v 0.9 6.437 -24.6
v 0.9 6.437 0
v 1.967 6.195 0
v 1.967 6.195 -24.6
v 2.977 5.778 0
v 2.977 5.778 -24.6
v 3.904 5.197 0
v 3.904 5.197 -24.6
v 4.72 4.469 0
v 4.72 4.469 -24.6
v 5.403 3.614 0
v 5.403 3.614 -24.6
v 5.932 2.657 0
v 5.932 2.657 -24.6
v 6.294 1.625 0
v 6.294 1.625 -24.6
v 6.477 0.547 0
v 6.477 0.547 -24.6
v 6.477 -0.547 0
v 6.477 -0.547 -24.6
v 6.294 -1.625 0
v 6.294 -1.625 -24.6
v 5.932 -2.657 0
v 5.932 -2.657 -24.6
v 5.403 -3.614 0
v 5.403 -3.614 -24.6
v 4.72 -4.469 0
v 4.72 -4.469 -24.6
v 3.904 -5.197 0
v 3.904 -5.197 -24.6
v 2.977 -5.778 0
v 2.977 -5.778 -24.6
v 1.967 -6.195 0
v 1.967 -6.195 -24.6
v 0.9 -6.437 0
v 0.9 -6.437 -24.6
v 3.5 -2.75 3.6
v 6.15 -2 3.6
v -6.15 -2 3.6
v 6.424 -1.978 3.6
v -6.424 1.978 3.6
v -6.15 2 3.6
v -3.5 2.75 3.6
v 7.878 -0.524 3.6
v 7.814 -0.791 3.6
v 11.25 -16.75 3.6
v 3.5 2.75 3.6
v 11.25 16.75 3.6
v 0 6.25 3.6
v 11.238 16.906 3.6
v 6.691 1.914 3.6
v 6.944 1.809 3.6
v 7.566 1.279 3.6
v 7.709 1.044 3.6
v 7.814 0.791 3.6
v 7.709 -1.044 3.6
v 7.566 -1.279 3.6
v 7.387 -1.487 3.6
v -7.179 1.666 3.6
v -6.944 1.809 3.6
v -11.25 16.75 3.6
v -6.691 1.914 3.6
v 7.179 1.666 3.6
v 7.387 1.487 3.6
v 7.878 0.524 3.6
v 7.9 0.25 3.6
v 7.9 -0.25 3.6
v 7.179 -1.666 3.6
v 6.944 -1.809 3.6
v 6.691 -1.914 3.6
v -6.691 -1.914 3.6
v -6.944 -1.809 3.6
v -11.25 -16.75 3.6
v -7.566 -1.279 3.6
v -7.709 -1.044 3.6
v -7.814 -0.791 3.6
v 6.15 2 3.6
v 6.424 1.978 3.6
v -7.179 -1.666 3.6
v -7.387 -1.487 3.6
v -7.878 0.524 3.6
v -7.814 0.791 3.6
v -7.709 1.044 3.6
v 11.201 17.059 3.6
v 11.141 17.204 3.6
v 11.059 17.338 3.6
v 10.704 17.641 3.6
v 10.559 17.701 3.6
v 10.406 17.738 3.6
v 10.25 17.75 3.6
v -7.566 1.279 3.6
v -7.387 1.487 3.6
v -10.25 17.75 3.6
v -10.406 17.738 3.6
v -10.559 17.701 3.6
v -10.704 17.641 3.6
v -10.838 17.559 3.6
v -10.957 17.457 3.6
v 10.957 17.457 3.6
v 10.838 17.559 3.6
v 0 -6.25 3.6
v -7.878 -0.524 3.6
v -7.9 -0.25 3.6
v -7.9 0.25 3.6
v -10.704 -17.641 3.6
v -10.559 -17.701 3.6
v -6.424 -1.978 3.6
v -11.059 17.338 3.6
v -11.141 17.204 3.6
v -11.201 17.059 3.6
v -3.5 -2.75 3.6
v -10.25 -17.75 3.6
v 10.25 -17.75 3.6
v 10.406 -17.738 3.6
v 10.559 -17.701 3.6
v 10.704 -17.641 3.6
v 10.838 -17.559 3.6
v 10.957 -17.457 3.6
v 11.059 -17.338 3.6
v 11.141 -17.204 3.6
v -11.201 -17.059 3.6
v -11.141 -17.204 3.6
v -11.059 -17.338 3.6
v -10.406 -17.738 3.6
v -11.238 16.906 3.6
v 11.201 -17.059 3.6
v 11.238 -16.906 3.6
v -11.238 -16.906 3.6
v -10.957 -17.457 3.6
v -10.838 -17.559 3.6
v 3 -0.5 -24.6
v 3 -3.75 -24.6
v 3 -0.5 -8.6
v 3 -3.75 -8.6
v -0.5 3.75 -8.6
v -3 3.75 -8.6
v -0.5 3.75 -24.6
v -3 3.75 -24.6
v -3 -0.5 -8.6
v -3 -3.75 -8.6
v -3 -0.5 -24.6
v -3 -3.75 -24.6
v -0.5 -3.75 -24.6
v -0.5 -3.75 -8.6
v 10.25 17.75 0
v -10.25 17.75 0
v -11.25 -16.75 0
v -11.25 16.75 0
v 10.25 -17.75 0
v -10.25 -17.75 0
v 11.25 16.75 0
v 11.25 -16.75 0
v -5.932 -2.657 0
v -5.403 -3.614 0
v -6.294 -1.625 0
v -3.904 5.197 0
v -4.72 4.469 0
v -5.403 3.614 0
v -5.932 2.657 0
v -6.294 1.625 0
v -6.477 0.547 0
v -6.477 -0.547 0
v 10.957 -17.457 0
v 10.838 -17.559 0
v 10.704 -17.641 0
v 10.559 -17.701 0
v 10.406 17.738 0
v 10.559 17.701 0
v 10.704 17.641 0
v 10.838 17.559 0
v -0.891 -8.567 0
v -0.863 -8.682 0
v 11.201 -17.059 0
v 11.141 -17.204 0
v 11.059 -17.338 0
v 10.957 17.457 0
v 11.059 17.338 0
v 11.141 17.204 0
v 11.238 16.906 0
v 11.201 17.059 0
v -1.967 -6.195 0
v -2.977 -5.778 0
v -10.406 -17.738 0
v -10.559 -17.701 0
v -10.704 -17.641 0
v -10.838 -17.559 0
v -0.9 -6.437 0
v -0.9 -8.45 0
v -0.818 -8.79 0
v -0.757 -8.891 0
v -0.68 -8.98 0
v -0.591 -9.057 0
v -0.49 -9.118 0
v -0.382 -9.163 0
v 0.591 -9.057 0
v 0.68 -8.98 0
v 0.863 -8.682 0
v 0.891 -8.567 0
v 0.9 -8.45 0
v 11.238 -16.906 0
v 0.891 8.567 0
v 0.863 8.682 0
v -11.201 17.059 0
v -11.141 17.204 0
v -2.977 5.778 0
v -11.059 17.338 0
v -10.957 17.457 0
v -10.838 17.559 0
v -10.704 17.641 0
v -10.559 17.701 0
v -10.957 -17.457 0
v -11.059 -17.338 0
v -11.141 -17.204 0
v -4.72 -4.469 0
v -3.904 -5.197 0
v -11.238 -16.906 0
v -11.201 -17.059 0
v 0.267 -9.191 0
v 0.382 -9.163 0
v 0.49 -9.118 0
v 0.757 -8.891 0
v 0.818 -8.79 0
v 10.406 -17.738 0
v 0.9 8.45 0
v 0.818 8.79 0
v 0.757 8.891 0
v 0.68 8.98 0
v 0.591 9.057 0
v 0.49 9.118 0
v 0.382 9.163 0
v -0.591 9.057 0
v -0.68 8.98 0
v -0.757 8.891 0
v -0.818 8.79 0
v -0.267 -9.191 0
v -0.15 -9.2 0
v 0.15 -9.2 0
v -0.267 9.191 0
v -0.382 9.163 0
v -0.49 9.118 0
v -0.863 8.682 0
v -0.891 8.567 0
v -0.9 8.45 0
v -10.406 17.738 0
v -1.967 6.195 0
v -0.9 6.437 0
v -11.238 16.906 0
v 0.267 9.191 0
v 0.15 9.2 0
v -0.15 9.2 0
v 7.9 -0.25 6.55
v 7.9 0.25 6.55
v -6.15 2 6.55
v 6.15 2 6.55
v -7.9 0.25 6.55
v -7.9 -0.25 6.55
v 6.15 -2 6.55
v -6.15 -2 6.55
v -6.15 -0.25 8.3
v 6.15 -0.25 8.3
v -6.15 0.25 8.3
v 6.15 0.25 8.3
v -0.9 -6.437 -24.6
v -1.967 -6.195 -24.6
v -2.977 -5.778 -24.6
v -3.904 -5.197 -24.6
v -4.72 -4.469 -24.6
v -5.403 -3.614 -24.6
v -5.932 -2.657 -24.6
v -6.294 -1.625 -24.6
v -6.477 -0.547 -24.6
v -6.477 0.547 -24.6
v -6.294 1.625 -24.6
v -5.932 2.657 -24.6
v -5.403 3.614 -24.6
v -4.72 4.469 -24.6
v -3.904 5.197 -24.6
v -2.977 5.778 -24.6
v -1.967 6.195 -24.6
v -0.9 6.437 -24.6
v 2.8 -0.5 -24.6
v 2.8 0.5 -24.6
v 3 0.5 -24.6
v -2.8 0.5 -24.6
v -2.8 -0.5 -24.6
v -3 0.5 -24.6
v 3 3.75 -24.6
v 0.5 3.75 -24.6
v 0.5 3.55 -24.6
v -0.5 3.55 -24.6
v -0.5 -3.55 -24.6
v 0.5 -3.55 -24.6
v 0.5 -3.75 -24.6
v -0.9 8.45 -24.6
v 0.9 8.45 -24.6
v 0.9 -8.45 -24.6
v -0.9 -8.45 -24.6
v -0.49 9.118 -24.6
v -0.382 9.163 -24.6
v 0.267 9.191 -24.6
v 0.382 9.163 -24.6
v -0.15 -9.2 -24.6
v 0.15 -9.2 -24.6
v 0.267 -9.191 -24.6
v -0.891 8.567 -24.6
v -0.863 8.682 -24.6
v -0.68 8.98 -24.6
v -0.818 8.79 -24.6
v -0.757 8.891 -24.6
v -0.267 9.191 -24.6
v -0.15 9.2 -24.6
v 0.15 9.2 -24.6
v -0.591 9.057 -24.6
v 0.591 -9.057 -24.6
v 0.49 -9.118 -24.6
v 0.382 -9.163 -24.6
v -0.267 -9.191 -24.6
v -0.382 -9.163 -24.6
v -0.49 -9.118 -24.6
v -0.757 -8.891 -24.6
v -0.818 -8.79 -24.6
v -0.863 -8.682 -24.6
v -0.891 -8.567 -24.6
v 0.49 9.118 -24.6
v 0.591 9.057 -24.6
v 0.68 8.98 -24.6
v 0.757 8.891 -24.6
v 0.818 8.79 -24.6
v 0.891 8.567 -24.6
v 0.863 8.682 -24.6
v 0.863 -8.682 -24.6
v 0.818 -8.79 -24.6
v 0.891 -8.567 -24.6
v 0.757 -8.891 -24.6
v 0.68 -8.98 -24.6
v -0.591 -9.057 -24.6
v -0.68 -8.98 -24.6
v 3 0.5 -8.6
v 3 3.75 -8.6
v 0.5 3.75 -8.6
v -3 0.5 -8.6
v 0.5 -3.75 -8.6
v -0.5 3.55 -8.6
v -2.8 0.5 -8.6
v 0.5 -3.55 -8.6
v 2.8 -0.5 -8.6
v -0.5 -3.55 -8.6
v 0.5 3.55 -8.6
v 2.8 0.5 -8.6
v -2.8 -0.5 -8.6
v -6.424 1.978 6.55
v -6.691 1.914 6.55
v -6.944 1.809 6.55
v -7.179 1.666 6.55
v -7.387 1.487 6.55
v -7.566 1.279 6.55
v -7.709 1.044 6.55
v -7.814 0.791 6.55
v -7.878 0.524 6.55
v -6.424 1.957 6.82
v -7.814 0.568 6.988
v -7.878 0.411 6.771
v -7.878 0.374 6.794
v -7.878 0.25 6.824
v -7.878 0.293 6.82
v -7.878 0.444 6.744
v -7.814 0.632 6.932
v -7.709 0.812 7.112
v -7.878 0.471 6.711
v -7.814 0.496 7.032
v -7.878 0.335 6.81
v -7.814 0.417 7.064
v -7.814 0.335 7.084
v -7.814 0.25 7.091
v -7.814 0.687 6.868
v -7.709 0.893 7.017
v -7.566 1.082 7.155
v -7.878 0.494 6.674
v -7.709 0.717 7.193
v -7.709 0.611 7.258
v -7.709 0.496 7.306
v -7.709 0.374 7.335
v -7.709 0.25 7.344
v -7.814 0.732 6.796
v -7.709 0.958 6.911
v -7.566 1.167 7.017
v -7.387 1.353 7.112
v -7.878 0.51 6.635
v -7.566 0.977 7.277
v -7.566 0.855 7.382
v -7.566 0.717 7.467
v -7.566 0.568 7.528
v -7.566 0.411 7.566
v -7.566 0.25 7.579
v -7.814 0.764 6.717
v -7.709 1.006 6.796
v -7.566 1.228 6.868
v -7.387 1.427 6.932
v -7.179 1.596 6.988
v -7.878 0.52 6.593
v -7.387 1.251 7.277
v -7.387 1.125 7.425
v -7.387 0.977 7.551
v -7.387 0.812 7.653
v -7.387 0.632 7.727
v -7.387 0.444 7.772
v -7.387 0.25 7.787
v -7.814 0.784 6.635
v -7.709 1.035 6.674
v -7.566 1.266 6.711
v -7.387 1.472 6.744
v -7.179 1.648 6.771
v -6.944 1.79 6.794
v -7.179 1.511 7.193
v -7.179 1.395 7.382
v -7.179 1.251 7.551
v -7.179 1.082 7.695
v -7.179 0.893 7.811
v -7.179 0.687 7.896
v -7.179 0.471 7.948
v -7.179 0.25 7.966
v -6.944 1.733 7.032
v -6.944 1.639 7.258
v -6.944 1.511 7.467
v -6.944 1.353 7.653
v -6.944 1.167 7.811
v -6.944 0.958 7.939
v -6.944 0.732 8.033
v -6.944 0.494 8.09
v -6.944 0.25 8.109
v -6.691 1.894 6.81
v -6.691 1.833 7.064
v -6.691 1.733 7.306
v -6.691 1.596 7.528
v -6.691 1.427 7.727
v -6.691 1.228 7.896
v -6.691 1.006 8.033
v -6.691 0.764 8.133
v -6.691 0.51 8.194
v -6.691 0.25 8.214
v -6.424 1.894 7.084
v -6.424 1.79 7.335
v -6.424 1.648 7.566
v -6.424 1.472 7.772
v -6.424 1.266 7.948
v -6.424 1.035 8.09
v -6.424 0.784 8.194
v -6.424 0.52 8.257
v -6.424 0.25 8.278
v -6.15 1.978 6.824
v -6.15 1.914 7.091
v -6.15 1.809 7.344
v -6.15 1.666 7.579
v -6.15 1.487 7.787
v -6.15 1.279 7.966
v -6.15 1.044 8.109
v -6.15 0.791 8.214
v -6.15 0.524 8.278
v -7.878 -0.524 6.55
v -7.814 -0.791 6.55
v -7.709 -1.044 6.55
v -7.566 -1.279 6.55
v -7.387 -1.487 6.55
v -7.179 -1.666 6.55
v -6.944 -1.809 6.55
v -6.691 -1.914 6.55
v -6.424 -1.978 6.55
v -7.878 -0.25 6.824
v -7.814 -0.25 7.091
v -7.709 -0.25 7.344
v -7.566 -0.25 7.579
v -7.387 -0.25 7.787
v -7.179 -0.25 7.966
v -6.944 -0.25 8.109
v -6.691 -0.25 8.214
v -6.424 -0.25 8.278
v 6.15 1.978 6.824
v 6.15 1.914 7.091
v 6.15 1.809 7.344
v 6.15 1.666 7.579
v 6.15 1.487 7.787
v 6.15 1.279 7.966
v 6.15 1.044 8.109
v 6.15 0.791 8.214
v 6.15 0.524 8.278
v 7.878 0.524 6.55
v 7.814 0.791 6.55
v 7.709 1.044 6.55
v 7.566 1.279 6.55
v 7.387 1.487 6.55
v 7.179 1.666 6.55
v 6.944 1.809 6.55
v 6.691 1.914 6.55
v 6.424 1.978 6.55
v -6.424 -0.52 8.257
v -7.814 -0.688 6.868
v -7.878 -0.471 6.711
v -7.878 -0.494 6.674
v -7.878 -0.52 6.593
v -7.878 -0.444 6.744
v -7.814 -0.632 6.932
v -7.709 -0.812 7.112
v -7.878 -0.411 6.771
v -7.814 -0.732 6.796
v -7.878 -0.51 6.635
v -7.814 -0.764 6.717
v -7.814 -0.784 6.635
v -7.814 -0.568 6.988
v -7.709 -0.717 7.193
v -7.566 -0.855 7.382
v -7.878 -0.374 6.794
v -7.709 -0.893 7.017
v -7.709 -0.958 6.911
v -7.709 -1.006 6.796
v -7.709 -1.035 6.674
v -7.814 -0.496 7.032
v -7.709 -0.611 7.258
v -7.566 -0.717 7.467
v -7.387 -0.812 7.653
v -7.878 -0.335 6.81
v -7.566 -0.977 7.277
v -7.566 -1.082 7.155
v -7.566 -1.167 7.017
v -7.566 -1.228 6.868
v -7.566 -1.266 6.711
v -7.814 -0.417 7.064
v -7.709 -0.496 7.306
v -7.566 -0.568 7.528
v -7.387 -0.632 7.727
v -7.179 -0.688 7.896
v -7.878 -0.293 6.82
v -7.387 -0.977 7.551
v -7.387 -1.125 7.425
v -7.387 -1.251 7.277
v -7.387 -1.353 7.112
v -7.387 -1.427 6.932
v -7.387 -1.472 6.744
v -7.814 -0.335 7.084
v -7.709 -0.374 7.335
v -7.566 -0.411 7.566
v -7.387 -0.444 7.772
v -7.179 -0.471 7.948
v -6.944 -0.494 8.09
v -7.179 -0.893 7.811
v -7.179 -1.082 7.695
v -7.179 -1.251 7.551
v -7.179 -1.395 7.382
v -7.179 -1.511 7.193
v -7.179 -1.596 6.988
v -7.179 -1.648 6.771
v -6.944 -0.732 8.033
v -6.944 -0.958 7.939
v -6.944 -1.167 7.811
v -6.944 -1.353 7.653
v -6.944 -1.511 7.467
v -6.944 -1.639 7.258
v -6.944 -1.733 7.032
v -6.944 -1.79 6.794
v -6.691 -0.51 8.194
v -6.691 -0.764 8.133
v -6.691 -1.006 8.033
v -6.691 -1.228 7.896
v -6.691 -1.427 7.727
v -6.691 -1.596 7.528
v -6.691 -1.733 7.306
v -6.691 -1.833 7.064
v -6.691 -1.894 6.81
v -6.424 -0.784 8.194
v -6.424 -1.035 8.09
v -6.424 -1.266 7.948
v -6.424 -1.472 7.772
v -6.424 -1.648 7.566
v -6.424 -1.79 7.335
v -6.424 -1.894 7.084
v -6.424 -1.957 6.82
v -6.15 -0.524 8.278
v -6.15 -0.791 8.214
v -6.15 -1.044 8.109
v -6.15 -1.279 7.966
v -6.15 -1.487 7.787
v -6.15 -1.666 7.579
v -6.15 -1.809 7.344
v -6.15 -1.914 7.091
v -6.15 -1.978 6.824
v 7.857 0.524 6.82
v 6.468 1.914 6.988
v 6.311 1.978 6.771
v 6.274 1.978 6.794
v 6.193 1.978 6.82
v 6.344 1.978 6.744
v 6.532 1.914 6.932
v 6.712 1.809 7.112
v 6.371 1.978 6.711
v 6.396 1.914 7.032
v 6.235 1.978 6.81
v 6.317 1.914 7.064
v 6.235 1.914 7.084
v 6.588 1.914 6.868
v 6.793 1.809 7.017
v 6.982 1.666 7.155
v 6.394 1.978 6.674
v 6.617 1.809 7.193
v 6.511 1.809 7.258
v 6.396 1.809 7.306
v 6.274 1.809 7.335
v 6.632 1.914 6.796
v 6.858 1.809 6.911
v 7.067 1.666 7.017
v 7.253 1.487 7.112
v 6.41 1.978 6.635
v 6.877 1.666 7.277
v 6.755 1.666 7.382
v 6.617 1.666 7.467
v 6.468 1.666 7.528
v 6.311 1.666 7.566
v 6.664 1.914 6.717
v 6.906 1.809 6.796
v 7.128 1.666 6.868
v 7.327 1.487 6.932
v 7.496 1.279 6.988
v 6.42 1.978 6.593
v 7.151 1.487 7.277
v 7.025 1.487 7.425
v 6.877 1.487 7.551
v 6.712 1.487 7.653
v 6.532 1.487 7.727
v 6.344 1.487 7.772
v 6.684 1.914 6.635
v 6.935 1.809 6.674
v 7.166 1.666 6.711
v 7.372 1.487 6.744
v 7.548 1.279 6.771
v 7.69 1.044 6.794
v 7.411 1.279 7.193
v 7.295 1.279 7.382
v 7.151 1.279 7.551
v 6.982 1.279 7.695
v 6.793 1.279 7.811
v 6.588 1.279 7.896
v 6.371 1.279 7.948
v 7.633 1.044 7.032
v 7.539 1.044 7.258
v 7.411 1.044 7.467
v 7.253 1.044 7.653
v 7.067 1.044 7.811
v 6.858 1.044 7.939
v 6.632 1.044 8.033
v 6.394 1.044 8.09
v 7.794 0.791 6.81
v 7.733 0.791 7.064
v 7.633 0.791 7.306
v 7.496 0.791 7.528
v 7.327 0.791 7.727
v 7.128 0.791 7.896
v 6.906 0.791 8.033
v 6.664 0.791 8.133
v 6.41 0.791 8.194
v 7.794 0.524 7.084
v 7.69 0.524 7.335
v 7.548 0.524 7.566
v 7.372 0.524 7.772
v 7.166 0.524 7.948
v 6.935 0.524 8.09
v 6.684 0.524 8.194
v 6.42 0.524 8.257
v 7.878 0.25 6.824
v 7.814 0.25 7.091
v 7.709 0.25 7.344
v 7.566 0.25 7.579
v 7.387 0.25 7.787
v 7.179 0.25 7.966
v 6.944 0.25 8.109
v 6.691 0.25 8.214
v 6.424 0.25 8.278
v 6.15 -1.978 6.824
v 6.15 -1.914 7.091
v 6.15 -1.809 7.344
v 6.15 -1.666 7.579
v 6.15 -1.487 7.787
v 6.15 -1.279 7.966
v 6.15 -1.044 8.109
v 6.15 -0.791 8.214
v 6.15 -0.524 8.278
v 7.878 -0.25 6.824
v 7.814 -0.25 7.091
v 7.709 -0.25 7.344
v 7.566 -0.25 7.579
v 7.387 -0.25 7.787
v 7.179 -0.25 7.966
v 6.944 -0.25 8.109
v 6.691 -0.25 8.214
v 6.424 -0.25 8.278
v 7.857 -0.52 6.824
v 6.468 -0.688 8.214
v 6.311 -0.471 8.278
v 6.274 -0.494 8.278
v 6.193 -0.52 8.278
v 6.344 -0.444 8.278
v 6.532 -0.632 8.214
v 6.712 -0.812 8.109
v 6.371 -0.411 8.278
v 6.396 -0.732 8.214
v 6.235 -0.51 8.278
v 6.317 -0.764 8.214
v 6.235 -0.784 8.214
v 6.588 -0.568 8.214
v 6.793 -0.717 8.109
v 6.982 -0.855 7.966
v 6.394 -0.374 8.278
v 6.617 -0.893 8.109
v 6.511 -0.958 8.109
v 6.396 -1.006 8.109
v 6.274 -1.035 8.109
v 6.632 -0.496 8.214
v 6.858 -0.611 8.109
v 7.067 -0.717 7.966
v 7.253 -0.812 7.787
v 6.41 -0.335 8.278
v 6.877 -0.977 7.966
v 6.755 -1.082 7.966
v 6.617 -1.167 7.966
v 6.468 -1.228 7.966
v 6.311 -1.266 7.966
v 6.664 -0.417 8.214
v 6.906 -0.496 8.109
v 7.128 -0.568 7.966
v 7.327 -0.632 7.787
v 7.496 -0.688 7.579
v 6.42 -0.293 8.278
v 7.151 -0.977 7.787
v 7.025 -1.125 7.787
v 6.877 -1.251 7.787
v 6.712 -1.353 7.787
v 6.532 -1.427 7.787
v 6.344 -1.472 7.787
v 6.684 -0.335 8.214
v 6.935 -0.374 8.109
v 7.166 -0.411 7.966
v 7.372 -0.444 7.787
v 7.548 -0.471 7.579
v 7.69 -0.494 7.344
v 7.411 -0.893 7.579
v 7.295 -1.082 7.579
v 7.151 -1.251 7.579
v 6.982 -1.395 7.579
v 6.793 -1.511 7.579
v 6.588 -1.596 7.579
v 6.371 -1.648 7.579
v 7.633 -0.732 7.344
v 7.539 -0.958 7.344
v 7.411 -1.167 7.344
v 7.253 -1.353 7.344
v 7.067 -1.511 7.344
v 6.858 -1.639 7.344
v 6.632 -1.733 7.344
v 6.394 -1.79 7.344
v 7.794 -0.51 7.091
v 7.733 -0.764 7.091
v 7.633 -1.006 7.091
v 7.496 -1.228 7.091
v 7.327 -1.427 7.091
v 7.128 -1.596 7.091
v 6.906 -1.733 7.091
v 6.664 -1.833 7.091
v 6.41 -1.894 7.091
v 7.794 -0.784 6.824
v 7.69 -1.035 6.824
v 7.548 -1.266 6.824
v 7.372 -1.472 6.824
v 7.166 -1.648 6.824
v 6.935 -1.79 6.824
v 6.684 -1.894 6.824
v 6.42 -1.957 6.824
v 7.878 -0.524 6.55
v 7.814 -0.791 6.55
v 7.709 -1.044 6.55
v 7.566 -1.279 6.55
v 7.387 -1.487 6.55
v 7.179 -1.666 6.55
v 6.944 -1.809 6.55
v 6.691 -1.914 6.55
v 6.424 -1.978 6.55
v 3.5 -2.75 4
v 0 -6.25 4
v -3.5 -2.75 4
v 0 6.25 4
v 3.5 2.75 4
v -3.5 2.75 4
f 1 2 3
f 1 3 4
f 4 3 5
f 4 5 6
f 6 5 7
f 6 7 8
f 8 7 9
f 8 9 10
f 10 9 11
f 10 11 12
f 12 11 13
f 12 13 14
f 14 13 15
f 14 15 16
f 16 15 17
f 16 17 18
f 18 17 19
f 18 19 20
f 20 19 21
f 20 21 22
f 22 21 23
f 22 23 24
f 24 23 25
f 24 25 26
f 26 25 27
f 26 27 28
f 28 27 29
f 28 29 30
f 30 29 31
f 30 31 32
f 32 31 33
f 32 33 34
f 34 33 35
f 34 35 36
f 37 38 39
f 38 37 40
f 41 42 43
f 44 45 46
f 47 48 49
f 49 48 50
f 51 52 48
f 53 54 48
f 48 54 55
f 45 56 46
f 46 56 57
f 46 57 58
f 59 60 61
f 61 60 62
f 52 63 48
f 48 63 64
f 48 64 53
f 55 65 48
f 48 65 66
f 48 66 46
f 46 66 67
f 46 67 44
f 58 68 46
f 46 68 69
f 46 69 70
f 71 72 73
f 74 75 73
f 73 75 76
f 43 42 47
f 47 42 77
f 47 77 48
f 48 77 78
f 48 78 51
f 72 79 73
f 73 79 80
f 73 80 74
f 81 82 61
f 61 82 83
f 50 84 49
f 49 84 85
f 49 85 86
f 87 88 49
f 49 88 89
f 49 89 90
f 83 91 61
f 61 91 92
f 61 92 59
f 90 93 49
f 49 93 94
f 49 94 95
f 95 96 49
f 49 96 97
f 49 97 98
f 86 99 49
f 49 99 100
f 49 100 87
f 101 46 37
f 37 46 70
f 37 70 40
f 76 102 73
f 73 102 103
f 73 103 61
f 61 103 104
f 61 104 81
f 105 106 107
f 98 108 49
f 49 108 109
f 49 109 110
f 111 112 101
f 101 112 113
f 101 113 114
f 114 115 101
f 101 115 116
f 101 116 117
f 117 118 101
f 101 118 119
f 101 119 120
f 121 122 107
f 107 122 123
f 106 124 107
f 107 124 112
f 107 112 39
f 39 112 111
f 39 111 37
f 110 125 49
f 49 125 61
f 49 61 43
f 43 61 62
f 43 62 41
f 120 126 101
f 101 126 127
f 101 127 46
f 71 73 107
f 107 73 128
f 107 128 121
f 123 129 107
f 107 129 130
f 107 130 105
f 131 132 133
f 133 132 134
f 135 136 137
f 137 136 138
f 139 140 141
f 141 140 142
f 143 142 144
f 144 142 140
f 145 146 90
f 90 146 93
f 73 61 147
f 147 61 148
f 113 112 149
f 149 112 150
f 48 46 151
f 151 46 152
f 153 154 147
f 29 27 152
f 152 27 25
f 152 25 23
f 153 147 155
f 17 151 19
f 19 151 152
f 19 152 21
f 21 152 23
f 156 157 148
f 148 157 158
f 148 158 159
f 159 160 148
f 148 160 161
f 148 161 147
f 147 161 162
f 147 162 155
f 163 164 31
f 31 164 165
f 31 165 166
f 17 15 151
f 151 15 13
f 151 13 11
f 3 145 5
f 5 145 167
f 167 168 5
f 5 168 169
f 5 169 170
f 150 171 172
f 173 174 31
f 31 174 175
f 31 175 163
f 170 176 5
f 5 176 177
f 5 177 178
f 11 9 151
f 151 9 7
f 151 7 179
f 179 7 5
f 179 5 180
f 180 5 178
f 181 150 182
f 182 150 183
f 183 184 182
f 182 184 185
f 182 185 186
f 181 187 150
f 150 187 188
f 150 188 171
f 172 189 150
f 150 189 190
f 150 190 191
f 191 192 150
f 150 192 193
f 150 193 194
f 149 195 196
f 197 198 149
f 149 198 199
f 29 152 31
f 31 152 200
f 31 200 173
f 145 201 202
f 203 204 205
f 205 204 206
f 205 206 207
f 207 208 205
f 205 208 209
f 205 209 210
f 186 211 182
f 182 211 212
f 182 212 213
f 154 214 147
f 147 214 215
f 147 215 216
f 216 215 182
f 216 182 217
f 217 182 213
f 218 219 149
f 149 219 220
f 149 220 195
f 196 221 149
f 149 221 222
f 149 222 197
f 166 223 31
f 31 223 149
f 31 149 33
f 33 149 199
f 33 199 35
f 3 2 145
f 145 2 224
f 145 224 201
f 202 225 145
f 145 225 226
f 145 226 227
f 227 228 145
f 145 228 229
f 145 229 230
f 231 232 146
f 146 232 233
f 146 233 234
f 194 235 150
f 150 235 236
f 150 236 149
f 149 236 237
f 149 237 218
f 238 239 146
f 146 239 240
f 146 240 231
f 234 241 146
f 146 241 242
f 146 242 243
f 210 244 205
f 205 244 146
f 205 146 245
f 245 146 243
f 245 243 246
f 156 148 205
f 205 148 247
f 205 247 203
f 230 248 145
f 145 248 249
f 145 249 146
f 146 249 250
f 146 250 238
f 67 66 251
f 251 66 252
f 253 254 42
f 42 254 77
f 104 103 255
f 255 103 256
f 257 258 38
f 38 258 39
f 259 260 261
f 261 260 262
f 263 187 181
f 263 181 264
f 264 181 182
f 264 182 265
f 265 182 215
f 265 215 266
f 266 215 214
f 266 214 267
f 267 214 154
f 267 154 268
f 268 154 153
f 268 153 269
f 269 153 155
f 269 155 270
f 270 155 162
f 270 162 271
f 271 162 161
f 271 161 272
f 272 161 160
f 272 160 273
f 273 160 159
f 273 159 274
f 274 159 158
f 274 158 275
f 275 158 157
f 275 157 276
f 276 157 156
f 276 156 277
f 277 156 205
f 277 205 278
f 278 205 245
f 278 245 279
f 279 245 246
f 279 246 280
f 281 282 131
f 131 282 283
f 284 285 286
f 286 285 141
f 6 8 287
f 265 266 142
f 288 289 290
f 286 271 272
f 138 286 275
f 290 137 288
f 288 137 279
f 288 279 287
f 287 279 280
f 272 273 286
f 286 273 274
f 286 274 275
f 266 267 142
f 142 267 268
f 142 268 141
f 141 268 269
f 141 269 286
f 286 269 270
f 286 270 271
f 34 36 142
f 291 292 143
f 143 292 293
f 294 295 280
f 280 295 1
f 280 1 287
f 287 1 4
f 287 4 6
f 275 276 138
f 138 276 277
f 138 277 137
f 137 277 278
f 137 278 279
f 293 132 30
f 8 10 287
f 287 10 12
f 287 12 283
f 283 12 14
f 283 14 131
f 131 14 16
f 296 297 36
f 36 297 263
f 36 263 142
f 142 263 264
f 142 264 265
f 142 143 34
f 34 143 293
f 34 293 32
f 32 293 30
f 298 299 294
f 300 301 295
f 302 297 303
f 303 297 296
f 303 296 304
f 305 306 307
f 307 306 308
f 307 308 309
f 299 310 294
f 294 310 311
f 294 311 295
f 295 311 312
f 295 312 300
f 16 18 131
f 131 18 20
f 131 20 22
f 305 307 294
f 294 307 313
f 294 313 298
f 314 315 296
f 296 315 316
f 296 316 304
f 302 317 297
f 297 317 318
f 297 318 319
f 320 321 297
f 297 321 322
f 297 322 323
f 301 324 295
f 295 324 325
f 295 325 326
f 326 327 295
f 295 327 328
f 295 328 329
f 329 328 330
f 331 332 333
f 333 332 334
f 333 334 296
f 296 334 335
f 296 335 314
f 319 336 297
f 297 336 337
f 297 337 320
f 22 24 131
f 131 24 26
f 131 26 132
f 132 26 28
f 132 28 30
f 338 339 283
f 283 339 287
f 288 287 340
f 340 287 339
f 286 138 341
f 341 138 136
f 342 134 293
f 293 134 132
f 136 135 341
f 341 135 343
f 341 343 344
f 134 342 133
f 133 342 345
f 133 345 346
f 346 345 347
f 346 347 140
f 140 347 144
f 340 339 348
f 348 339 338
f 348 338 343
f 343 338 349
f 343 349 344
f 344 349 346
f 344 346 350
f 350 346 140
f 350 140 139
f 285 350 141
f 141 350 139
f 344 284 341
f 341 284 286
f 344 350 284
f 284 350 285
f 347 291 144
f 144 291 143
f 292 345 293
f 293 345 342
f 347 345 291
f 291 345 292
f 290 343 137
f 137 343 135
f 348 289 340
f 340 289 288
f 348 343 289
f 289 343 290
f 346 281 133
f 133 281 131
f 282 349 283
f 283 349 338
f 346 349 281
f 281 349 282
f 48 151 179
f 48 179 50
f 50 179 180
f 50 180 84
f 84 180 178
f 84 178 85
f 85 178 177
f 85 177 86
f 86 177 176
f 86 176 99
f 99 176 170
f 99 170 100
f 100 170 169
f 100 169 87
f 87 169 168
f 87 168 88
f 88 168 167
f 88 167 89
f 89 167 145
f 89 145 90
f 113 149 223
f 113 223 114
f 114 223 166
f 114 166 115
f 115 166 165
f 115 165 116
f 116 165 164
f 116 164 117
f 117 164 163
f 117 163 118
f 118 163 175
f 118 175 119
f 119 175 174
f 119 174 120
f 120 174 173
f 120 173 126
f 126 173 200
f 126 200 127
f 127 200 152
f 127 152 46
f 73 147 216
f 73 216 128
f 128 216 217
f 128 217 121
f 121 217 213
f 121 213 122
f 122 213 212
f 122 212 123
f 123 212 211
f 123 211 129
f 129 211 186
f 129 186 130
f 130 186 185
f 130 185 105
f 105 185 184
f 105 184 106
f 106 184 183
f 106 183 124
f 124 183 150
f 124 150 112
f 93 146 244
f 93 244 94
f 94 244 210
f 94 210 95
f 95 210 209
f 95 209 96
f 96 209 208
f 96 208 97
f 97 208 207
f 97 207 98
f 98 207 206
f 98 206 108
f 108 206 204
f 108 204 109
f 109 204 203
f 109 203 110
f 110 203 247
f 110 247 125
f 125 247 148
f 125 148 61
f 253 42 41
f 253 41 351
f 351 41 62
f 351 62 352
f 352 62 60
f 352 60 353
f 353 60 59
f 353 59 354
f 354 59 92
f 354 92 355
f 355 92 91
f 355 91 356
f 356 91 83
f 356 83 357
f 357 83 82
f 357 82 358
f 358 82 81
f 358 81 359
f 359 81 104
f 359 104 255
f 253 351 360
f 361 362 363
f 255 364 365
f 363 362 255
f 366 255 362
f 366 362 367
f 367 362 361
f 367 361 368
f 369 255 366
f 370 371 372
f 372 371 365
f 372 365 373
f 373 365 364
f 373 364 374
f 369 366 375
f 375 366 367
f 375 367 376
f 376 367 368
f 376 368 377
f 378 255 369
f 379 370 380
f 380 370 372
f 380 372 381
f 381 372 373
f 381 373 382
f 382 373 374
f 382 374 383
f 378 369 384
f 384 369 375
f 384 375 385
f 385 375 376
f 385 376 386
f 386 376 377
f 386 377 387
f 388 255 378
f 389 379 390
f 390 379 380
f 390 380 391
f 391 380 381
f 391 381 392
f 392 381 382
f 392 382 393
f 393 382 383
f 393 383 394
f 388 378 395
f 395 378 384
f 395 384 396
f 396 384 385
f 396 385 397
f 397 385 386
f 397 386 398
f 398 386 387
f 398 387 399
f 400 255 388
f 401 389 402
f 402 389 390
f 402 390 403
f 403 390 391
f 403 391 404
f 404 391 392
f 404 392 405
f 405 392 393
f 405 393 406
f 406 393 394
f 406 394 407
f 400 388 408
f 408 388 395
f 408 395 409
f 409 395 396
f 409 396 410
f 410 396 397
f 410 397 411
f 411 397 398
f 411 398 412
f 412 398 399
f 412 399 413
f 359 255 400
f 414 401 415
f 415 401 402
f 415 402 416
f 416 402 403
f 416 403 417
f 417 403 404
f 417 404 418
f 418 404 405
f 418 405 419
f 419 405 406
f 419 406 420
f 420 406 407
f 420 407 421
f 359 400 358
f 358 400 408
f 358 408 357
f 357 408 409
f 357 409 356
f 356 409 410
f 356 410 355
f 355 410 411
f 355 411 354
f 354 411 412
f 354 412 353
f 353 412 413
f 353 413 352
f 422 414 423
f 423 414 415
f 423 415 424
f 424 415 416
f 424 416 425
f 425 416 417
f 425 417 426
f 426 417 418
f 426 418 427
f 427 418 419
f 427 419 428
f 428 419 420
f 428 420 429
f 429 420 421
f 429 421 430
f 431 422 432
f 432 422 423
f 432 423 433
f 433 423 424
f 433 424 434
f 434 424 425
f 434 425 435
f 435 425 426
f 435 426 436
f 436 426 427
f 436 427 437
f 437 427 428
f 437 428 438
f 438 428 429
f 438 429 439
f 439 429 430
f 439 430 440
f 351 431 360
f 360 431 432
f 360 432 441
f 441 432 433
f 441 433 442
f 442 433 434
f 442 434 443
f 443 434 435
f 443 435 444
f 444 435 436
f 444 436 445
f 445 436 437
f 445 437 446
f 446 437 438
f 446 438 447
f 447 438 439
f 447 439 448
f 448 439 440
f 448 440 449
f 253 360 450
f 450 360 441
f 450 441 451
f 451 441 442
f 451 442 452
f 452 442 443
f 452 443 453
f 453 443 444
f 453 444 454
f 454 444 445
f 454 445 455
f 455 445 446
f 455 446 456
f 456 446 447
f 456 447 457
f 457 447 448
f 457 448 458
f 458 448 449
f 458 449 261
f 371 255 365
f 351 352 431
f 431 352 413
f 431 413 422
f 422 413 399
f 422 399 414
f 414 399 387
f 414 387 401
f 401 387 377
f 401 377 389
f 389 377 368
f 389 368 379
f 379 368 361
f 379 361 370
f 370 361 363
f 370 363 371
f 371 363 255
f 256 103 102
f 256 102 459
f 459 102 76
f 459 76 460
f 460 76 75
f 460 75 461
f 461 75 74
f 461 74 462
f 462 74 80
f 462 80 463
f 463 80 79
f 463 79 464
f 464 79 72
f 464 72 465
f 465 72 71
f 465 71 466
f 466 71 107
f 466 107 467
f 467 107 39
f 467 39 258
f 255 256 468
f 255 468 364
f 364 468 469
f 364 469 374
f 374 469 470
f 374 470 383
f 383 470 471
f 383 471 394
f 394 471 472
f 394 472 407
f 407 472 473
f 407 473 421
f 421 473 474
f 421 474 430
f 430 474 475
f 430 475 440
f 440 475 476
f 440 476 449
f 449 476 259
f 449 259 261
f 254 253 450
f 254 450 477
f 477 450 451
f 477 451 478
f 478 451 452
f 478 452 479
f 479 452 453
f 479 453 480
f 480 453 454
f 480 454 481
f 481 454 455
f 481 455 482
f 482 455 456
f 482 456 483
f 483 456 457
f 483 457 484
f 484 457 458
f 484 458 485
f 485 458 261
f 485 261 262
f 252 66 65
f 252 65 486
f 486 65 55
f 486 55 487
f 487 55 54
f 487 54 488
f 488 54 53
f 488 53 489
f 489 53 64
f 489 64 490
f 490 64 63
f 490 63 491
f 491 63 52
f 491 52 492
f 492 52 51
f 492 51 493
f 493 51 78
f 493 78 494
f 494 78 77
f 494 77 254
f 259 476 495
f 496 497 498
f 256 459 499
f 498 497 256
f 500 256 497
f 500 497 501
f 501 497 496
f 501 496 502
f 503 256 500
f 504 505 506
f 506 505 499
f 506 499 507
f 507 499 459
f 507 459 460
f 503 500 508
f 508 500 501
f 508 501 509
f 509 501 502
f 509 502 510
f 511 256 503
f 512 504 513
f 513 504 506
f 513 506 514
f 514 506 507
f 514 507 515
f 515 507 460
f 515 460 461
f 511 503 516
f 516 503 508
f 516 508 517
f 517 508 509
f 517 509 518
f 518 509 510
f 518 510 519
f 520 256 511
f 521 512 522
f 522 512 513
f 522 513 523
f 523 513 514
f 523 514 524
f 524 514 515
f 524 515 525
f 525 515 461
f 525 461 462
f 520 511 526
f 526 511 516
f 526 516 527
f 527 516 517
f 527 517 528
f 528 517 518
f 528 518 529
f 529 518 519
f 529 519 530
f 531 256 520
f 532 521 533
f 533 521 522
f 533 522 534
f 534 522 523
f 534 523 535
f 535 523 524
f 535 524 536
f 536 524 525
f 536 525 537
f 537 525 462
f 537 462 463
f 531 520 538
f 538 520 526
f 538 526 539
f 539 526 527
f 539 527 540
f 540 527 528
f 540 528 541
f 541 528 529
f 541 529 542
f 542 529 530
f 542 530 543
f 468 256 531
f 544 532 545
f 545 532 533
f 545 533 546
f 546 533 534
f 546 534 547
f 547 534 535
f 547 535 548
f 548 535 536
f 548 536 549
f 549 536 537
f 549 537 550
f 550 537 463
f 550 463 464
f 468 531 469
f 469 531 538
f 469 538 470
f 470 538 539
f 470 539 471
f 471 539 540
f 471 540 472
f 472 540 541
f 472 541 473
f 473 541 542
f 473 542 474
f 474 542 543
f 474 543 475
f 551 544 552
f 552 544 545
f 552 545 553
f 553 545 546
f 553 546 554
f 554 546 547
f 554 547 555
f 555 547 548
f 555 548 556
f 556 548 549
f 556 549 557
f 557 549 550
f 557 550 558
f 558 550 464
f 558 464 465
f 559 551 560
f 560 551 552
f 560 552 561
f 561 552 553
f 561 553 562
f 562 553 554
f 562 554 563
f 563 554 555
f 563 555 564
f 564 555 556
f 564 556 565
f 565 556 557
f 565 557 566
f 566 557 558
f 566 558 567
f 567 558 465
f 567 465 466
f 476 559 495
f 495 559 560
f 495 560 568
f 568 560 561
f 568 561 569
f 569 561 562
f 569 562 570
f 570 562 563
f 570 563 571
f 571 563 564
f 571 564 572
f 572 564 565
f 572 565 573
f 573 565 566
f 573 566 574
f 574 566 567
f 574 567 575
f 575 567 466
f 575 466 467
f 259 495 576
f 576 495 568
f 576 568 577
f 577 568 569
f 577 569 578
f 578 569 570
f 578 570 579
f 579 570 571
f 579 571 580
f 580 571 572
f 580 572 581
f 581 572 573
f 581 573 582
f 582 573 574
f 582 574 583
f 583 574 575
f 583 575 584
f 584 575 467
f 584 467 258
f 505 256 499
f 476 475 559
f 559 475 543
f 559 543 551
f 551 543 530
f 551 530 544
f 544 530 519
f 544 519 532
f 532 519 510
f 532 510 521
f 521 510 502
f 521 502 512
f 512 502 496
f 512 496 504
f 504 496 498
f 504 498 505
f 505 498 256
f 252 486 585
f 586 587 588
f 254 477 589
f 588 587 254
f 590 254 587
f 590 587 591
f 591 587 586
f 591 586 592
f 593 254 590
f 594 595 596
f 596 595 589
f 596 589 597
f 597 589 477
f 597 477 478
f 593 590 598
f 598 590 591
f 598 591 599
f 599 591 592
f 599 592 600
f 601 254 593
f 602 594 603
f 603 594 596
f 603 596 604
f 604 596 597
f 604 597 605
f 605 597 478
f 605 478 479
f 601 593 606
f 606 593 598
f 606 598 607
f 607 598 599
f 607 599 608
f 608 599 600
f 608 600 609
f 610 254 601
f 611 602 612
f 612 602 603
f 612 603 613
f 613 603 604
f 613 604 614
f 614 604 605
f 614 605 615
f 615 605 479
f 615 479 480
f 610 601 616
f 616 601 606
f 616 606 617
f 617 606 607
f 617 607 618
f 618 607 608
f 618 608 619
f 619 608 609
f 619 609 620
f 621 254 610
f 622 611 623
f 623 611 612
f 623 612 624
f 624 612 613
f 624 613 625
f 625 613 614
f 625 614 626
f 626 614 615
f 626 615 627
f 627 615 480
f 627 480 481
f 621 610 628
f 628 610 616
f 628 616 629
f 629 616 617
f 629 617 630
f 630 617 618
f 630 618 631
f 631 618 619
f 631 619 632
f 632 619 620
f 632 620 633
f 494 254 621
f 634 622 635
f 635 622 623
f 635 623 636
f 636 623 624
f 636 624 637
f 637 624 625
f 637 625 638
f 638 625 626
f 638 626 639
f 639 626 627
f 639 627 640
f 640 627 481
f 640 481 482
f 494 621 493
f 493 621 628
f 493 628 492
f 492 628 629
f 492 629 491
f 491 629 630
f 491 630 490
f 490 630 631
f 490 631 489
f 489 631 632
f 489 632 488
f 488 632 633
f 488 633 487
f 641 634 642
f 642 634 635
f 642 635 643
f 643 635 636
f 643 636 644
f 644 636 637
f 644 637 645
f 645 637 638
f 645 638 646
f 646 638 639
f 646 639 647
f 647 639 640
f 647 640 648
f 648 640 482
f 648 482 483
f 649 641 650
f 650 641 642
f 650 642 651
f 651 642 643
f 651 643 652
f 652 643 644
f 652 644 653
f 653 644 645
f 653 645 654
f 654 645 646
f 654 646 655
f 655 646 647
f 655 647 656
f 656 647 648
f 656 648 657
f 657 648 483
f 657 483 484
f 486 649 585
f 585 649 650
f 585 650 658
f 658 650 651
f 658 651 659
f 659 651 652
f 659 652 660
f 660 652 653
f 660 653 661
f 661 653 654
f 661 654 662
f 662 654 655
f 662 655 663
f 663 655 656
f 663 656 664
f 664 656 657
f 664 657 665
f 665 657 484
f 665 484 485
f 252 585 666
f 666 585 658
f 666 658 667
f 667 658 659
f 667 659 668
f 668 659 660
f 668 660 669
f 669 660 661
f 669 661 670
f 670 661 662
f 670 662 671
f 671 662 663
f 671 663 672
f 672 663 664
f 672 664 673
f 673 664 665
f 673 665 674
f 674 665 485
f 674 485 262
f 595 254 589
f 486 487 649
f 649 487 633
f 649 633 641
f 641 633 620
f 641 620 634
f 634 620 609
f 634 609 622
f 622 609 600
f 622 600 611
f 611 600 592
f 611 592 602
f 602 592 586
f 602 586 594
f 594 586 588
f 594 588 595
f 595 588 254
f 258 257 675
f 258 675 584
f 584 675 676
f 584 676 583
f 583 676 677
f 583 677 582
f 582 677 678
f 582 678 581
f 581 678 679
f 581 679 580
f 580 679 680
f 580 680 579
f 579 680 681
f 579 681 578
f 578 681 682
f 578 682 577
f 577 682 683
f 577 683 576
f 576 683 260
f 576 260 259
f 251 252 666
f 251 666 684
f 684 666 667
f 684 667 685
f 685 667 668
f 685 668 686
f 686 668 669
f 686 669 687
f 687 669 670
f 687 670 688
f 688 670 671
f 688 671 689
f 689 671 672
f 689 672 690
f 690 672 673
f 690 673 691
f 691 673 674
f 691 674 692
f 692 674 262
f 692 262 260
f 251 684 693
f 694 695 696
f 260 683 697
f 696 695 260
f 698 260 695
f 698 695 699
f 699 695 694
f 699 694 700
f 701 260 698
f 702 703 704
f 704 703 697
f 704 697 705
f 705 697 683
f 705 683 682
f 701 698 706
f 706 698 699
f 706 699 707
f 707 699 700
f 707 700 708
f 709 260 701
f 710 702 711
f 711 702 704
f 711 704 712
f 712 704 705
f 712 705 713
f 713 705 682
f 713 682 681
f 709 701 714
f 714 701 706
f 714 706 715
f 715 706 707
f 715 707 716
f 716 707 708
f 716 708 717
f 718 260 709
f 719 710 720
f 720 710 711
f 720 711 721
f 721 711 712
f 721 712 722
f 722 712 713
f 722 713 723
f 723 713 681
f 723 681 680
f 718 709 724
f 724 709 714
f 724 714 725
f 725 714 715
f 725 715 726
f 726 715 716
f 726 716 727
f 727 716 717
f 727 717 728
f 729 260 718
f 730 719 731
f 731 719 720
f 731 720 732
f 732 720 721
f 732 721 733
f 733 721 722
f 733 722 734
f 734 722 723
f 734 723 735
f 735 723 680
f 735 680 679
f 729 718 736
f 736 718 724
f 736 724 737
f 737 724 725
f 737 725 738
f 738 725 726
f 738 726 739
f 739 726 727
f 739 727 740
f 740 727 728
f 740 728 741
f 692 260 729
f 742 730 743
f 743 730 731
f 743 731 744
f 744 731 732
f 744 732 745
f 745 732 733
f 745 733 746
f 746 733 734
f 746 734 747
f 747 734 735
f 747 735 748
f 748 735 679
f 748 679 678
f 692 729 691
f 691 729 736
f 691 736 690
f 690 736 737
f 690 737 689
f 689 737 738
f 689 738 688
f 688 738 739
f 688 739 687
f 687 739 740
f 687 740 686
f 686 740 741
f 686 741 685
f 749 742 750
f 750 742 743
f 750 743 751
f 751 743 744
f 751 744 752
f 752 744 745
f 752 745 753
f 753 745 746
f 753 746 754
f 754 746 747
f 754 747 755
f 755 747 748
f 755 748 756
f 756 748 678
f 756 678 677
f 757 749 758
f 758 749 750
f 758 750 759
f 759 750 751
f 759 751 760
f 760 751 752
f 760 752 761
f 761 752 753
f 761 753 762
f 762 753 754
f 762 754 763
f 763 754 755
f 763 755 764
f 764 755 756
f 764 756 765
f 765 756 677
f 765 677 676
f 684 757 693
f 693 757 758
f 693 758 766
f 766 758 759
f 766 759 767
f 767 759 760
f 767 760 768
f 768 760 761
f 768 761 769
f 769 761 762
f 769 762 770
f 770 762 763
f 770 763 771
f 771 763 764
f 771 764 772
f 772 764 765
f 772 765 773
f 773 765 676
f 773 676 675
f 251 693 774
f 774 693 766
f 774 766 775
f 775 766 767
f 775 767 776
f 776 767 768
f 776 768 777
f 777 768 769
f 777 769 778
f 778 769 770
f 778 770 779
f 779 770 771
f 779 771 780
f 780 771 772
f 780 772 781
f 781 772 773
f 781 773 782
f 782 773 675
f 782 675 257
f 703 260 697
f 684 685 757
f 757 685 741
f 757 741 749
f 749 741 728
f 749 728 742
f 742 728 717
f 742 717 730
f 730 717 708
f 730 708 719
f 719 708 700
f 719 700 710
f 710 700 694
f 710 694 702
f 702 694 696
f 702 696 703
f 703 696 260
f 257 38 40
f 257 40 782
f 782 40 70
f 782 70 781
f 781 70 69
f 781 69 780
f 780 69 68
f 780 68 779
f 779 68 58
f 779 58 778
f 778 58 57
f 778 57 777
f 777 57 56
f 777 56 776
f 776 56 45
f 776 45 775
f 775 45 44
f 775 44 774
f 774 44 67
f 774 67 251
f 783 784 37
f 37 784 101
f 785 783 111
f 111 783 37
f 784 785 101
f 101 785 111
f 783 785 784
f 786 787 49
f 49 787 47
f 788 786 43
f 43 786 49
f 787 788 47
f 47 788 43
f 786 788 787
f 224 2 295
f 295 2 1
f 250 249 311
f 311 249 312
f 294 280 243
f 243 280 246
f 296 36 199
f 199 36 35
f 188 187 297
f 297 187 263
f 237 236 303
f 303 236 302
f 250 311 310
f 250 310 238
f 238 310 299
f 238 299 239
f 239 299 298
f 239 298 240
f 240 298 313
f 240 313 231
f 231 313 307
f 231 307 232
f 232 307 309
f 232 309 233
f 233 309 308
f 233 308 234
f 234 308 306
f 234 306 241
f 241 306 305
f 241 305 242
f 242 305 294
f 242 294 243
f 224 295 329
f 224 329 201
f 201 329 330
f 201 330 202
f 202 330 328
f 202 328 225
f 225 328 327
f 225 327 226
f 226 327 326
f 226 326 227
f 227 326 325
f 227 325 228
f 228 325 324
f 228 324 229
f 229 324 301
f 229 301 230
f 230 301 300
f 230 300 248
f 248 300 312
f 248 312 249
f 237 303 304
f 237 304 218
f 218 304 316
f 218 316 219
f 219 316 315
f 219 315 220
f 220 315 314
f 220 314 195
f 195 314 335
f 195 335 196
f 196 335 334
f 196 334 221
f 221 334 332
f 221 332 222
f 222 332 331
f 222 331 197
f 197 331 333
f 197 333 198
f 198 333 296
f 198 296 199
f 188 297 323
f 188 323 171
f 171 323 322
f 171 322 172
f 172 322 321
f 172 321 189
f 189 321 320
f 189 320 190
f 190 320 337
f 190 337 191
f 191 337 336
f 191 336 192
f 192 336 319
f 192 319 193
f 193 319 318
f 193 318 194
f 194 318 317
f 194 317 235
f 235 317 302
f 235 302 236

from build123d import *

# Parameters (mm, degrees)
SKETCH1_W           = 35.5
SKETCH1_H           = 22.5
BOSS_EXTRUDE1_DEPTH = 3.6
SKETCH2_W           = 15.8
SKETCH2_H           = 4
BOSS_EXTRUDE2_DEPTH = 4.7
SKETCH3_R           = 6.5
BOSS_EXTRUDE3_DEPTH = 24.6
SKETCH4_W           = 6
SKETCH4_H           = 7.5
CUT_EXTRUDE1_DEPTH  = 16
SKETCH5_W           = 1
SKETCH5_H           = 0.4
SKETCH5_W_2         = 0.4
SKETCH5_H_2         = 1
BOSS_EXTRUDE4_DEPTH = 16
FILLET1_R           = 1
FILLET2_R           = 1.75
BOSS_EXTRUDE5_DEPTH = 0.4
SKETCH7_W           = 1.8
SKETCH7_H           = 5.4
BOSS_EXTRUDE6_DEPTH = 26
FILLET3_R           = 0.75


with BuildPart() as part:
    # Sketch1 → Boss-Extrude1 (new body)
    with BuildSketch(Plane(origin=(0, 0, 0), x_dir=(0, 1, 0), z_dir=(0, 0, 1))):
        Rectangle(SKETCH1_W, SKETCH1_H)
    extrude(amount=BOSS_EXTRUDE1_DEPTH)

    # Sketch2 → Boss-Extrude2 (add)
    with BuildSketch(Plane.XY.offset(3.6)):
        Rectangle(SKETCH2_W, SKETCH2_H)
    extrude(amount=BOSS_EXTRUDE2_DEPTH)

    # Sketch3 → Boss-Extrude3 (add)
    with BuildSketch(Plane(origin=(0, 0, 0), x_dir=(1, 0, 0), z_dir=(0, 0, -1))):
        Circle(SKETCH3_R)
    extrude(amount=BOSS_EXTRUDE3_DEPTH)

    # Sketch4 → Cut-Extrude1 (cut)
    with BuildSketch(Plane(origin=(0, 0, -24.6), x_dir=(1, 0, 0), z_dir=(0, 0, -1))):
        Rectangle(SKETCH4_W, SKETCH4_H)
    extrude(amount=-CUT_EXTRUDE1_DEPTH, mode=Mode.SUBTRACT)

    # Sketch5 → Boss-Extrude4 (add)
    with BuildSketch(Plane(origin=(0, 0, -24.6), x_dir=(-1, 0, 0), z_dir=(0, 0, -1))):
        with Locations((0, 3.75)):
            Rectangle(SKETCH5_W, SKETCH5_H)
        with Locations((-3, 0)):
            Rectangle(SKETCH5_W_2, SKETCH5_H_2)
        with Locations((0, -3.75)):
            Rectangle(SKETCH5_W, SKETCH5_H)
        with Locations((3, 0)):
            Rectangle(SKETCH5_W_2, SKETCH5_H_2)
    extrude(amount=-BOSS_EXTRUDE4_DEPTH)

    # Fillet1
    fillet1_edges = [part.edges().sort_by_distance(p)[0] for p in [
        (11.25, 17.75, 1.8),
        (11.25, -17.75, 1.8),
        (-11.25, -17.75, 1.8),
        (-11.25, 17.75, 1.8),
    ]]
    fillet(fillet1_edges, radius=FILLET1_R)

    # Fillet2
    fillet2_edges = [part.edges().sort_by_distance(p)[0] for p in [
        (7.9, -2, 5.95),
        (7.9, 2, 5.95),
        (-7.9, 2, 5.95),
        (-7.9, -2, 5.95),
        (7.9, 0, 8.3),
        (0, 2, 8.3),
        (-7.9, 0, 8.3),
        (0, -2, 8.3),
    ]]
    fillet(fillet2_edges, radius=FILLET2_R)

    # Sketch6 → Boss-Extrude5 (add)
    with BuildSketch(Plane.XY.offset(3.6)):
        Polygon((3.5, 2.75), (-3.5, 2.75), (0, 6.25), align=None)
        Polygon((3.5, -2.75), (-3.5, -2.75), (0, -6.25), align=None)
    extrude(amount=BOSS_EXTRUDE5_DEPTH)

    # Sketch7 → Boss-Extrude6 (add)
    with BuildSketch(Plane(origin=(0, 0, -24.6), x_dir=(1, 0, 0), z_dir=(0, 0, -1))):
        with Locations((0, 6.5)):
            Rectangle(SKETCH7_W, SKETCH7_H)
        with Locations((0, -6.5)):
            Rectangle(SKETCH7_W, SKETCH7_H)
    extrude(amount=-BOSS_EXTRUDE6_DEPTH)

    # Fillet3
    fillet3_edges = [part.edges().sort_by_distance(p)[0] for p in [
        (0.9, -9.2, -12.3),
        (-0.9, -9.2, -12.3),
        (0.9, 9.2, -12.3),
        (-0.9, 9.2, -12.3),
    ]]
    fillet(fillet3_edges, radius=FILLET3_R)


solid = part.part
